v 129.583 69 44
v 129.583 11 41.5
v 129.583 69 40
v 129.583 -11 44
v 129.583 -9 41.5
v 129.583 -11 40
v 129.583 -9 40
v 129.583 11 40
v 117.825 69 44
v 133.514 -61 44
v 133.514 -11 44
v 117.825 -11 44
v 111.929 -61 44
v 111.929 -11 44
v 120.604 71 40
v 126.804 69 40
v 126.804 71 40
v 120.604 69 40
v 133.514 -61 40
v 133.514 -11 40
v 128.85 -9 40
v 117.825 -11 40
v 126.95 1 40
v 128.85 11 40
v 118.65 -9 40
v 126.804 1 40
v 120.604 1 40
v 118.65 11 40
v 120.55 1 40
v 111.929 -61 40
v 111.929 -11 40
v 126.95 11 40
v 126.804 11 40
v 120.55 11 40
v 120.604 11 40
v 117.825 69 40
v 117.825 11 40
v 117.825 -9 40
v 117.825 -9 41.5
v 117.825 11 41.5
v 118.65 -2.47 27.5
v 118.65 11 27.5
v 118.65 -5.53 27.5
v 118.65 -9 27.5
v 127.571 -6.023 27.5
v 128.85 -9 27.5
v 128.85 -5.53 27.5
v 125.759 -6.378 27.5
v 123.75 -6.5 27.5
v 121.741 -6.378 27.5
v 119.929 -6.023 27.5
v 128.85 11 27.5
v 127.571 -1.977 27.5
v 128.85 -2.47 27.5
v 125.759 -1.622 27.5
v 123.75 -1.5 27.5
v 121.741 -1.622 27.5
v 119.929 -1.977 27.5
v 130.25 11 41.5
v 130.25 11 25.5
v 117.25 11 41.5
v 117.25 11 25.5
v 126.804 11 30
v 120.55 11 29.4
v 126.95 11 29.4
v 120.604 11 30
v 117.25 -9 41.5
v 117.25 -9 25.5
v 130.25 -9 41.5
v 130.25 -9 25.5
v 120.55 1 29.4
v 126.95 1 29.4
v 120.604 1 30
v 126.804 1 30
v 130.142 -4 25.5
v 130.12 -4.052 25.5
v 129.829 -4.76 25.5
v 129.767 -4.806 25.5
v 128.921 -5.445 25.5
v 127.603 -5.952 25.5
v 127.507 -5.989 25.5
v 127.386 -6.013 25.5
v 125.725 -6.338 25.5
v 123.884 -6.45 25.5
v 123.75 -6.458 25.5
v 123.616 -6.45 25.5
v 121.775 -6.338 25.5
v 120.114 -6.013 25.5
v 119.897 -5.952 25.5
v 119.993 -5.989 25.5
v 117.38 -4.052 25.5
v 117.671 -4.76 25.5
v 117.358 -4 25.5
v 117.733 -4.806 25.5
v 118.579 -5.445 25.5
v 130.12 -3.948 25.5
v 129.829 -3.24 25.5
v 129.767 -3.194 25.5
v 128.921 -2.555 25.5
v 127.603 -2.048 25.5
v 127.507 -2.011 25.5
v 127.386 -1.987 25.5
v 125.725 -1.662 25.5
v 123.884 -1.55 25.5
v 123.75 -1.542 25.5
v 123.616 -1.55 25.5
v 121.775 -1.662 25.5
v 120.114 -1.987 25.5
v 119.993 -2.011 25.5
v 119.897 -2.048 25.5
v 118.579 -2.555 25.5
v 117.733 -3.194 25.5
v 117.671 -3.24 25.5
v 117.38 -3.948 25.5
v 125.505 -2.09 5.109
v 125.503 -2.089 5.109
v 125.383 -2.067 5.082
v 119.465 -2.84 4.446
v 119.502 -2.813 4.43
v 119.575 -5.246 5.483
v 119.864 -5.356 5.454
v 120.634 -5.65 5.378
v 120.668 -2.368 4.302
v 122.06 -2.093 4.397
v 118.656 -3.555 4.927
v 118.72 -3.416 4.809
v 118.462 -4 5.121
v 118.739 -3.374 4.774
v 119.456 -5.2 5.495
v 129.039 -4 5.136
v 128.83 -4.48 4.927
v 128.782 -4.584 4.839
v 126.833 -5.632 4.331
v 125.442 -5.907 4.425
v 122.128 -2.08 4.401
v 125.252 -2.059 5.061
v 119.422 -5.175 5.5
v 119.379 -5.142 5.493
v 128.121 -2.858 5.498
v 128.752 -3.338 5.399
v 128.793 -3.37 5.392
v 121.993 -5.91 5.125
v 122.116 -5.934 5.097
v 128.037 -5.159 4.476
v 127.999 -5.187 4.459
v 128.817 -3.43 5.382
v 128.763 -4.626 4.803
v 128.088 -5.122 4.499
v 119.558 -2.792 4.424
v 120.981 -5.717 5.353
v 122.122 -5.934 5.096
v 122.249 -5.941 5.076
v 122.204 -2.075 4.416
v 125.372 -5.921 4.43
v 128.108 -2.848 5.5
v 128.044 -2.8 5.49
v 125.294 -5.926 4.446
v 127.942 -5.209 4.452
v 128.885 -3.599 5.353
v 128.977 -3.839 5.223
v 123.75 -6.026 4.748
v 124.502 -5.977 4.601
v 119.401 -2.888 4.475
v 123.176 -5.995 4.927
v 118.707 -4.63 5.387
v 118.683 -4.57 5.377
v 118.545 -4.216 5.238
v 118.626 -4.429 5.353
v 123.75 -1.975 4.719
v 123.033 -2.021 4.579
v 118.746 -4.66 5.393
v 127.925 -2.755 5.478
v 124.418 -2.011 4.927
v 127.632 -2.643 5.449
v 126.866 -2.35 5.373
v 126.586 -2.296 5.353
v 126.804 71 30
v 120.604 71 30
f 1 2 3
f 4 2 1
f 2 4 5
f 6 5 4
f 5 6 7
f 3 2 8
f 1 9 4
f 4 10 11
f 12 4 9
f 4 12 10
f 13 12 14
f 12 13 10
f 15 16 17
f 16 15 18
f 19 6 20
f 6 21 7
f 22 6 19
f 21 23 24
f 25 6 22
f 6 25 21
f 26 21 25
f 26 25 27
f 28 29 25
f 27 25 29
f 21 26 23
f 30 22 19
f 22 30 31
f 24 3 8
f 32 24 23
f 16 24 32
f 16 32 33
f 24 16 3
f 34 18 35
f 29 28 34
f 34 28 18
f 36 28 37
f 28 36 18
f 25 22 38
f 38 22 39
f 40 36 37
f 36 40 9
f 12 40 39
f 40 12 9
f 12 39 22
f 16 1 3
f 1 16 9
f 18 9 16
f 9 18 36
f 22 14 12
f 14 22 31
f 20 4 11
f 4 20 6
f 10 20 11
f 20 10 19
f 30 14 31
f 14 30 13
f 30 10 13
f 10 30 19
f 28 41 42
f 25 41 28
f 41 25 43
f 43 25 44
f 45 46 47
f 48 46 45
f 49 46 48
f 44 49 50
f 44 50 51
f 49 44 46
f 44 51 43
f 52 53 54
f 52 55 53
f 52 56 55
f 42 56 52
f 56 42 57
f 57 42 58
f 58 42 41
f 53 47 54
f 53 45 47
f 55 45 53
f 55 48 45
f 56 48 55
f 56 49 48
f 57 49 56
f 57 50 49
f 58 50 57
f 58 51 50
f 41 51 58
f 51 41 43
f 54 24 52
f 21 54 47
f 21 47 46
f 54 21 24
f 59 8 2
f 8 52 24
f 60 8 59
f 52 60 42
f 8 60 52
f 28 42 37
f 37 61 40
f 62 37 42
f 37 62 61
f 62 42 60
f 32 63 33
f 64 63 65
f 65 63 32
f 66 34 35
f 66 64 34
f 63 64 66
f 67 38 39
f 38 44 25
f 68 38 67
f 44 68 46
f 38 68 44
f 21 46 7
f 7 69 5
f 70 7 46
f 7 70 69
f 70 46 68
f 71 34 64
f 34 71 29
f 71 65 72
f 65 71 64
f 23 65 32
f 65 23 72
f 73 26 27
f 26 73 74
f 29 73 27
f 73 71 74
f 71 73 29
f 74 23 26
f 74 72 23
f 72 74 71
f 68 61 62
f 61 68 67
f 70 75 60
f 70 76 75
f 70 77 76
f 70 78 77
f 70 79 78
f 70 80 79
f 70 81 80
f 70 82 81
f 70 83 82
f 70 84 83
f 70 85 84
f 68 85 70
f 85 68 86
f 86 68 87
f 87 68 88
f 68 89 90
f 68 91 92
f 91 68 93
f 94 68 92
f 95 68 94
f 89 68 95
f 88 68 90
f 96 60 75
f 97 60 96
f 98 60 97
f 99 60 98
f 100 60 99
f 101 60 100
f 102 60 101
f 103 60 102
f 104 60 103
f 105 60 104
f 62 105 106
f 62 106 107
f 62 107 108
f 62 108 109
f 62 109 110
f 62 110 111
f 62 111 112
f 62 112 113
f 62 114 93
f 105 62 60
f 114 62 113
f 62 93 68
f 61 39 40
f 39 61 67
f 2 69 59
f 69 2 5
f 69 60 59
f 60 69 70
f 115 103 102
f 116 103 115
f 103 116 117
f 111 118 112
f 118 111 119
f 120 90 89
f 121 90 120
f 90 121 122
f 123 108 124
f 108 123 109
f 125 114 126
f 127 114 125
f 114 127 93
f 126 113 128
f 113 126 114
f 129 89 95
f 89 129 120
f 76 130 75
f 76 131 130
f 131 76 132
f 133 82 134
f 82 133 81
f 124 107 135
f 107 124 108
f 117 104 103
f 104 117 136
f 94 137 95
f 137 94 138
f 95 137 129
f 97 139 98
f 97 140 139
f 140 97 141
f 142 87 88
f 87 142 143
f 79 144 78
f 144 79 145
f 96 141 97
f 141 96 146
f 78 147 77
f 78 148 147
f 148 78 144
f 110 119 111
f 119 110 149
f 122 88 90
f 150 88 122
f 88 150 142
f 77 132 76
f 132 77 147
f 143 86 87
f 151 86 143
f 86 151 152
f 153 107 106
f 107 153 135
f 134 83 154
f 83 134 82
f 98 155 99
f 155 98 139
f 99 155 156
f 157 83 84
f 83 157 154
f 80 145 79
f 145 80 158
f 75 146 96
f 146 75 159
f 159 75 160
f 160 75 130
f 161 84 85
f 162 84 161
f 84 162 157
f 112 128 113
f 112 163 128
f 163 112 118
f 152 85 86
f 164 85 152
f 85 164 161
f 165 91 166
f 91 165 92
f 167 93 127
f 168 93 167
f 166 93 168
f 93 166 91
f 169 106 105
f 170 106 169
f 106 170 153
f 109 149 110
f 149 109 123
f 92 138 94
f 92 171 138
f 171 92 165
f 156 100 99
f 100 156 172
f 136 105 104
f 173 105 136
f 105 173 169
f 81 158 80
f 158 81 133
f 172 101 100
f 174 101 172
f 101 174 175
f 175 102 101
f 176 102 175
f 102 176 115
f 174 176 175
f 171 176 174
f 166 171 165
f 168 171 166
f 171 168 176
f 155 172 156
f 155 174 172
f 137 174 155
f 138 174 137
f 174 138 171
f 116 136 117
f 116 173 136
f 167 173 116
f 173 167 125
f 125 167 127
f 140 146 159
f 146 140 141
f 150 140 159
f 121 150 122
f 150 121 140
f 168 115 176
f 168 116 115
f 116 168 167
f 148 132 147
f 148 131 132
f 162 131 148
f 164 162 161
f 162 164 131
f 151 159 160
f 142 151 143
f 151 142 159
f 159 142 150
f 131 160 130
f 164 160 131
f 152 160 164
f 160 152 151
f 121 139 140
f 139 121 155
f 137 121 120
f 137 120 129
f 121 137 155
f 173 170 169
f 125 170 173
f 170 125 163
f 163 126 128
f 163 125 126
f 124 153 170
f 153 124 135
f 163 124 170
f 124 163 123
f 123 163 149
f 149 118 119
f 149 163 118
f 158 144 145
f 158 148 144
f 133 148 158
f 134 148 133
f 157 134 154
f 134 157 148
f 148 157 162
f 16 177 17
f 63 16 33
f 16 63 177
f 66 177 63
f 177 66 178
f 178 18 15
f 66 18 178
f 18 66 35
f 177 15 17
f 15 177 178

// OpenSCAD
// file: irkem_hammerTips_v1.scad
tol = 0.2;
extrWall = 1.7+tol;
extrH = 12.9+tol;//12.6+tol;
extrW = 10+tol;

hammerY = 20;
hammerZ = 24;

$fn = 20;

module hammerTips(){
//Strike cylinder:
//v1: made elliptical and added skew-angle indentation to:
//      1. Avoid hitting adjacent strings
//      2. Maximize likelihood of striking proper string
//      3. Ensure that hammer tip force on the string is centering
//Prior cone geometry resulted in adjacent string strikes in y axis for most keys
    difference(){
        translate([0,-5,0]) scale([2.6,1,1]) cylinder(hammerZ,2.5,2);
        translate([-12,-1.8,25]) rotate([0,90,-15]) cylinder(hammerZ,3,3);
    }
difference(){
    translate([-6.5,-10,-14]) cube([13,hammerY,16]);
    union(){uChan();translate([-extrW/2,-hammerY/2,-extrH]) cube([extrW,hammerY/2,extrH]);
}
}
module uChan(){
difference(){
    translate([-extrW/2,-hammerY/2,-extrH]) cube([extrW,hammerY,extrH]);
    translate([-extrW/2+extrWall,-hammerY/2,-extrH-extrWall]) cube([extrW-2*extrWall,hammerY,extrH]);
}
}
}

//hammerTips();
// main file
include <irkem_hammerTips_v1.scad>

xO = -6;
yO = -11;
zO = 40;

kH = 4;
bH = 10;
wL = 50;
bL = 80;
oct = 6.5 * 25.4;
gap = 2;
n_oct = 1;//5;
n_keys = 12 * n_oct;
oset = -1;

sharpFlag = 1;

for (k = [9]){//:1:(n_keys-1)]){
    //
    translate([k*13.75+6.0+xO,12+yO,-12.5+zO]) rotate([0,180,0]) hammerTips();
}

for (k = [0:1:(n_oct-1)]){

//C:
//color("ivory") translate([k*oct+0+xO,0+yO,0+zO]) cube([oct*1/12-gap,bL,kH]);
//color("ivory") translate([k*oct+0+xO,-wL+yO,0+zO]) cube([oct*1/7-gap,wL,kH]);

////C#:
//if (sharpFlag){    
//color("black") translate([k*oct+oct*1/12+xO,gap+yO,0+zO]) cube([oct*1/12-gap,bL,kH+bH]);
//}//

////D:
//color("ivory") translate([k*oct+oct*2/12+xO,0+yO,0+zO]) cube([oct*1/12-gap,bL,kH]);
//color("ivory") translate([k*oct+oct*1/7+xO,-wL+yO,0+zO]) cube([oct*1/7-gap,wL,kH]);//

////D#:
//if (sharpFlag){
//color("black") translate([k*oct+oct*3/12+xO,gap+yO,0+zO]) cube([oct*1/12-gap,bL,kH+bH]);
//}//

////E:
//color("ivory") translate([k*oct+oct*4/12+xO,0+yO,0+zO]) cube([2+oct*1/12-gap,bL,kH]);
//color("ivory") translate([k*oct+oct*2/7+xO,-wL+yO,0+zO]) cube([oct*1/7-gap,wL,kH]);//

////F:
//color("ivory") difference(){
//    translate([k*oct+oct*3/7+xO,-wL+yO,0+zO]) cube([oct*1/7-gap,wL+bL,kH]);
//    translate([k*oct+oct*6/12-2+xO,0+yO,0+zO]) cube([4+oct*(1/7-1/12)-gap,bL,kH]);
//}
//color("ivory") translate([k*oct+oct*3/7+xO,-wL+yO,0+zO]) cube([oct*1/7-gap,wL,kH]);//

////F#:
//if (sharpFlag){
//color("black") translate([k*oct+oct*6/12+xO,gap+yO,0+zO]) cube([oct*1/12-gap,bL,kH+bH]);
//}//

////G:
//color("ivory") translate([k*oct+oct*7/12+xO,0+yO,0+zO]) cube([oct*1/12-gap,bL,kH]);
//color("ivory") translate([k*oct+oct*4/7+xO,-wL+yO,0+zO]) cube([oct*1/7-gap,wL,kH]);//

////G#:
//if (sharpFlag){
//color("black") translate([k*oct+oct*8/12+xO,gap+yO,0+zO]) cube([oct*1/12-gap,bL,kH+bH]);
//}//

////A:
color("ivory") translate([k*oct+oct*9/12+xO,0+yO,0+zO]) cube([oct*1/12-gap,bL,kH]);
color("ivory") translate([k*oct+oct*5/7+xO,-wL+yO,0+zO]) cube([oct*1/7-gap,wL,kH]);//

////A#:
//if (sharpFlag){
//color("black") translate([k*oct+oct*10/12+xO,gap+yO,0+zO]) cube([oct*1/12-gap,bL,kH+bH]);
//}//

////B:
//color("ivory") translate([k*oct+oct*11/12+xO,0+yO,0+zO]) cube([oct*1/12-gap,bL,kH]);
//color("ivory") translate([k*oct+oct*6/7+xO,-wL+yO,0+zO]) cube([oct*1/7-gap,wL,kH]);//

}

for (i = [9]){//,2,4,5,7,9,11]){//[0:1:(n_keys-1)]){
    translate([oset+oct*i/12+(oct*1/12-6.2)/2+xO,2+10+yO,-10+zO]) cube([6.2,bL-10,10]);
}

//if (sharpFlag){
//    for (i = [1,3,6,8,10]){//[0:1:(n_keys-1)]){
//    translate([oset+oct*i/12+(oct*1/12-6.2)/2+xO,2+10+yO,-10+zO]) cube([6.2,bL-10,10]);
//}
//}
